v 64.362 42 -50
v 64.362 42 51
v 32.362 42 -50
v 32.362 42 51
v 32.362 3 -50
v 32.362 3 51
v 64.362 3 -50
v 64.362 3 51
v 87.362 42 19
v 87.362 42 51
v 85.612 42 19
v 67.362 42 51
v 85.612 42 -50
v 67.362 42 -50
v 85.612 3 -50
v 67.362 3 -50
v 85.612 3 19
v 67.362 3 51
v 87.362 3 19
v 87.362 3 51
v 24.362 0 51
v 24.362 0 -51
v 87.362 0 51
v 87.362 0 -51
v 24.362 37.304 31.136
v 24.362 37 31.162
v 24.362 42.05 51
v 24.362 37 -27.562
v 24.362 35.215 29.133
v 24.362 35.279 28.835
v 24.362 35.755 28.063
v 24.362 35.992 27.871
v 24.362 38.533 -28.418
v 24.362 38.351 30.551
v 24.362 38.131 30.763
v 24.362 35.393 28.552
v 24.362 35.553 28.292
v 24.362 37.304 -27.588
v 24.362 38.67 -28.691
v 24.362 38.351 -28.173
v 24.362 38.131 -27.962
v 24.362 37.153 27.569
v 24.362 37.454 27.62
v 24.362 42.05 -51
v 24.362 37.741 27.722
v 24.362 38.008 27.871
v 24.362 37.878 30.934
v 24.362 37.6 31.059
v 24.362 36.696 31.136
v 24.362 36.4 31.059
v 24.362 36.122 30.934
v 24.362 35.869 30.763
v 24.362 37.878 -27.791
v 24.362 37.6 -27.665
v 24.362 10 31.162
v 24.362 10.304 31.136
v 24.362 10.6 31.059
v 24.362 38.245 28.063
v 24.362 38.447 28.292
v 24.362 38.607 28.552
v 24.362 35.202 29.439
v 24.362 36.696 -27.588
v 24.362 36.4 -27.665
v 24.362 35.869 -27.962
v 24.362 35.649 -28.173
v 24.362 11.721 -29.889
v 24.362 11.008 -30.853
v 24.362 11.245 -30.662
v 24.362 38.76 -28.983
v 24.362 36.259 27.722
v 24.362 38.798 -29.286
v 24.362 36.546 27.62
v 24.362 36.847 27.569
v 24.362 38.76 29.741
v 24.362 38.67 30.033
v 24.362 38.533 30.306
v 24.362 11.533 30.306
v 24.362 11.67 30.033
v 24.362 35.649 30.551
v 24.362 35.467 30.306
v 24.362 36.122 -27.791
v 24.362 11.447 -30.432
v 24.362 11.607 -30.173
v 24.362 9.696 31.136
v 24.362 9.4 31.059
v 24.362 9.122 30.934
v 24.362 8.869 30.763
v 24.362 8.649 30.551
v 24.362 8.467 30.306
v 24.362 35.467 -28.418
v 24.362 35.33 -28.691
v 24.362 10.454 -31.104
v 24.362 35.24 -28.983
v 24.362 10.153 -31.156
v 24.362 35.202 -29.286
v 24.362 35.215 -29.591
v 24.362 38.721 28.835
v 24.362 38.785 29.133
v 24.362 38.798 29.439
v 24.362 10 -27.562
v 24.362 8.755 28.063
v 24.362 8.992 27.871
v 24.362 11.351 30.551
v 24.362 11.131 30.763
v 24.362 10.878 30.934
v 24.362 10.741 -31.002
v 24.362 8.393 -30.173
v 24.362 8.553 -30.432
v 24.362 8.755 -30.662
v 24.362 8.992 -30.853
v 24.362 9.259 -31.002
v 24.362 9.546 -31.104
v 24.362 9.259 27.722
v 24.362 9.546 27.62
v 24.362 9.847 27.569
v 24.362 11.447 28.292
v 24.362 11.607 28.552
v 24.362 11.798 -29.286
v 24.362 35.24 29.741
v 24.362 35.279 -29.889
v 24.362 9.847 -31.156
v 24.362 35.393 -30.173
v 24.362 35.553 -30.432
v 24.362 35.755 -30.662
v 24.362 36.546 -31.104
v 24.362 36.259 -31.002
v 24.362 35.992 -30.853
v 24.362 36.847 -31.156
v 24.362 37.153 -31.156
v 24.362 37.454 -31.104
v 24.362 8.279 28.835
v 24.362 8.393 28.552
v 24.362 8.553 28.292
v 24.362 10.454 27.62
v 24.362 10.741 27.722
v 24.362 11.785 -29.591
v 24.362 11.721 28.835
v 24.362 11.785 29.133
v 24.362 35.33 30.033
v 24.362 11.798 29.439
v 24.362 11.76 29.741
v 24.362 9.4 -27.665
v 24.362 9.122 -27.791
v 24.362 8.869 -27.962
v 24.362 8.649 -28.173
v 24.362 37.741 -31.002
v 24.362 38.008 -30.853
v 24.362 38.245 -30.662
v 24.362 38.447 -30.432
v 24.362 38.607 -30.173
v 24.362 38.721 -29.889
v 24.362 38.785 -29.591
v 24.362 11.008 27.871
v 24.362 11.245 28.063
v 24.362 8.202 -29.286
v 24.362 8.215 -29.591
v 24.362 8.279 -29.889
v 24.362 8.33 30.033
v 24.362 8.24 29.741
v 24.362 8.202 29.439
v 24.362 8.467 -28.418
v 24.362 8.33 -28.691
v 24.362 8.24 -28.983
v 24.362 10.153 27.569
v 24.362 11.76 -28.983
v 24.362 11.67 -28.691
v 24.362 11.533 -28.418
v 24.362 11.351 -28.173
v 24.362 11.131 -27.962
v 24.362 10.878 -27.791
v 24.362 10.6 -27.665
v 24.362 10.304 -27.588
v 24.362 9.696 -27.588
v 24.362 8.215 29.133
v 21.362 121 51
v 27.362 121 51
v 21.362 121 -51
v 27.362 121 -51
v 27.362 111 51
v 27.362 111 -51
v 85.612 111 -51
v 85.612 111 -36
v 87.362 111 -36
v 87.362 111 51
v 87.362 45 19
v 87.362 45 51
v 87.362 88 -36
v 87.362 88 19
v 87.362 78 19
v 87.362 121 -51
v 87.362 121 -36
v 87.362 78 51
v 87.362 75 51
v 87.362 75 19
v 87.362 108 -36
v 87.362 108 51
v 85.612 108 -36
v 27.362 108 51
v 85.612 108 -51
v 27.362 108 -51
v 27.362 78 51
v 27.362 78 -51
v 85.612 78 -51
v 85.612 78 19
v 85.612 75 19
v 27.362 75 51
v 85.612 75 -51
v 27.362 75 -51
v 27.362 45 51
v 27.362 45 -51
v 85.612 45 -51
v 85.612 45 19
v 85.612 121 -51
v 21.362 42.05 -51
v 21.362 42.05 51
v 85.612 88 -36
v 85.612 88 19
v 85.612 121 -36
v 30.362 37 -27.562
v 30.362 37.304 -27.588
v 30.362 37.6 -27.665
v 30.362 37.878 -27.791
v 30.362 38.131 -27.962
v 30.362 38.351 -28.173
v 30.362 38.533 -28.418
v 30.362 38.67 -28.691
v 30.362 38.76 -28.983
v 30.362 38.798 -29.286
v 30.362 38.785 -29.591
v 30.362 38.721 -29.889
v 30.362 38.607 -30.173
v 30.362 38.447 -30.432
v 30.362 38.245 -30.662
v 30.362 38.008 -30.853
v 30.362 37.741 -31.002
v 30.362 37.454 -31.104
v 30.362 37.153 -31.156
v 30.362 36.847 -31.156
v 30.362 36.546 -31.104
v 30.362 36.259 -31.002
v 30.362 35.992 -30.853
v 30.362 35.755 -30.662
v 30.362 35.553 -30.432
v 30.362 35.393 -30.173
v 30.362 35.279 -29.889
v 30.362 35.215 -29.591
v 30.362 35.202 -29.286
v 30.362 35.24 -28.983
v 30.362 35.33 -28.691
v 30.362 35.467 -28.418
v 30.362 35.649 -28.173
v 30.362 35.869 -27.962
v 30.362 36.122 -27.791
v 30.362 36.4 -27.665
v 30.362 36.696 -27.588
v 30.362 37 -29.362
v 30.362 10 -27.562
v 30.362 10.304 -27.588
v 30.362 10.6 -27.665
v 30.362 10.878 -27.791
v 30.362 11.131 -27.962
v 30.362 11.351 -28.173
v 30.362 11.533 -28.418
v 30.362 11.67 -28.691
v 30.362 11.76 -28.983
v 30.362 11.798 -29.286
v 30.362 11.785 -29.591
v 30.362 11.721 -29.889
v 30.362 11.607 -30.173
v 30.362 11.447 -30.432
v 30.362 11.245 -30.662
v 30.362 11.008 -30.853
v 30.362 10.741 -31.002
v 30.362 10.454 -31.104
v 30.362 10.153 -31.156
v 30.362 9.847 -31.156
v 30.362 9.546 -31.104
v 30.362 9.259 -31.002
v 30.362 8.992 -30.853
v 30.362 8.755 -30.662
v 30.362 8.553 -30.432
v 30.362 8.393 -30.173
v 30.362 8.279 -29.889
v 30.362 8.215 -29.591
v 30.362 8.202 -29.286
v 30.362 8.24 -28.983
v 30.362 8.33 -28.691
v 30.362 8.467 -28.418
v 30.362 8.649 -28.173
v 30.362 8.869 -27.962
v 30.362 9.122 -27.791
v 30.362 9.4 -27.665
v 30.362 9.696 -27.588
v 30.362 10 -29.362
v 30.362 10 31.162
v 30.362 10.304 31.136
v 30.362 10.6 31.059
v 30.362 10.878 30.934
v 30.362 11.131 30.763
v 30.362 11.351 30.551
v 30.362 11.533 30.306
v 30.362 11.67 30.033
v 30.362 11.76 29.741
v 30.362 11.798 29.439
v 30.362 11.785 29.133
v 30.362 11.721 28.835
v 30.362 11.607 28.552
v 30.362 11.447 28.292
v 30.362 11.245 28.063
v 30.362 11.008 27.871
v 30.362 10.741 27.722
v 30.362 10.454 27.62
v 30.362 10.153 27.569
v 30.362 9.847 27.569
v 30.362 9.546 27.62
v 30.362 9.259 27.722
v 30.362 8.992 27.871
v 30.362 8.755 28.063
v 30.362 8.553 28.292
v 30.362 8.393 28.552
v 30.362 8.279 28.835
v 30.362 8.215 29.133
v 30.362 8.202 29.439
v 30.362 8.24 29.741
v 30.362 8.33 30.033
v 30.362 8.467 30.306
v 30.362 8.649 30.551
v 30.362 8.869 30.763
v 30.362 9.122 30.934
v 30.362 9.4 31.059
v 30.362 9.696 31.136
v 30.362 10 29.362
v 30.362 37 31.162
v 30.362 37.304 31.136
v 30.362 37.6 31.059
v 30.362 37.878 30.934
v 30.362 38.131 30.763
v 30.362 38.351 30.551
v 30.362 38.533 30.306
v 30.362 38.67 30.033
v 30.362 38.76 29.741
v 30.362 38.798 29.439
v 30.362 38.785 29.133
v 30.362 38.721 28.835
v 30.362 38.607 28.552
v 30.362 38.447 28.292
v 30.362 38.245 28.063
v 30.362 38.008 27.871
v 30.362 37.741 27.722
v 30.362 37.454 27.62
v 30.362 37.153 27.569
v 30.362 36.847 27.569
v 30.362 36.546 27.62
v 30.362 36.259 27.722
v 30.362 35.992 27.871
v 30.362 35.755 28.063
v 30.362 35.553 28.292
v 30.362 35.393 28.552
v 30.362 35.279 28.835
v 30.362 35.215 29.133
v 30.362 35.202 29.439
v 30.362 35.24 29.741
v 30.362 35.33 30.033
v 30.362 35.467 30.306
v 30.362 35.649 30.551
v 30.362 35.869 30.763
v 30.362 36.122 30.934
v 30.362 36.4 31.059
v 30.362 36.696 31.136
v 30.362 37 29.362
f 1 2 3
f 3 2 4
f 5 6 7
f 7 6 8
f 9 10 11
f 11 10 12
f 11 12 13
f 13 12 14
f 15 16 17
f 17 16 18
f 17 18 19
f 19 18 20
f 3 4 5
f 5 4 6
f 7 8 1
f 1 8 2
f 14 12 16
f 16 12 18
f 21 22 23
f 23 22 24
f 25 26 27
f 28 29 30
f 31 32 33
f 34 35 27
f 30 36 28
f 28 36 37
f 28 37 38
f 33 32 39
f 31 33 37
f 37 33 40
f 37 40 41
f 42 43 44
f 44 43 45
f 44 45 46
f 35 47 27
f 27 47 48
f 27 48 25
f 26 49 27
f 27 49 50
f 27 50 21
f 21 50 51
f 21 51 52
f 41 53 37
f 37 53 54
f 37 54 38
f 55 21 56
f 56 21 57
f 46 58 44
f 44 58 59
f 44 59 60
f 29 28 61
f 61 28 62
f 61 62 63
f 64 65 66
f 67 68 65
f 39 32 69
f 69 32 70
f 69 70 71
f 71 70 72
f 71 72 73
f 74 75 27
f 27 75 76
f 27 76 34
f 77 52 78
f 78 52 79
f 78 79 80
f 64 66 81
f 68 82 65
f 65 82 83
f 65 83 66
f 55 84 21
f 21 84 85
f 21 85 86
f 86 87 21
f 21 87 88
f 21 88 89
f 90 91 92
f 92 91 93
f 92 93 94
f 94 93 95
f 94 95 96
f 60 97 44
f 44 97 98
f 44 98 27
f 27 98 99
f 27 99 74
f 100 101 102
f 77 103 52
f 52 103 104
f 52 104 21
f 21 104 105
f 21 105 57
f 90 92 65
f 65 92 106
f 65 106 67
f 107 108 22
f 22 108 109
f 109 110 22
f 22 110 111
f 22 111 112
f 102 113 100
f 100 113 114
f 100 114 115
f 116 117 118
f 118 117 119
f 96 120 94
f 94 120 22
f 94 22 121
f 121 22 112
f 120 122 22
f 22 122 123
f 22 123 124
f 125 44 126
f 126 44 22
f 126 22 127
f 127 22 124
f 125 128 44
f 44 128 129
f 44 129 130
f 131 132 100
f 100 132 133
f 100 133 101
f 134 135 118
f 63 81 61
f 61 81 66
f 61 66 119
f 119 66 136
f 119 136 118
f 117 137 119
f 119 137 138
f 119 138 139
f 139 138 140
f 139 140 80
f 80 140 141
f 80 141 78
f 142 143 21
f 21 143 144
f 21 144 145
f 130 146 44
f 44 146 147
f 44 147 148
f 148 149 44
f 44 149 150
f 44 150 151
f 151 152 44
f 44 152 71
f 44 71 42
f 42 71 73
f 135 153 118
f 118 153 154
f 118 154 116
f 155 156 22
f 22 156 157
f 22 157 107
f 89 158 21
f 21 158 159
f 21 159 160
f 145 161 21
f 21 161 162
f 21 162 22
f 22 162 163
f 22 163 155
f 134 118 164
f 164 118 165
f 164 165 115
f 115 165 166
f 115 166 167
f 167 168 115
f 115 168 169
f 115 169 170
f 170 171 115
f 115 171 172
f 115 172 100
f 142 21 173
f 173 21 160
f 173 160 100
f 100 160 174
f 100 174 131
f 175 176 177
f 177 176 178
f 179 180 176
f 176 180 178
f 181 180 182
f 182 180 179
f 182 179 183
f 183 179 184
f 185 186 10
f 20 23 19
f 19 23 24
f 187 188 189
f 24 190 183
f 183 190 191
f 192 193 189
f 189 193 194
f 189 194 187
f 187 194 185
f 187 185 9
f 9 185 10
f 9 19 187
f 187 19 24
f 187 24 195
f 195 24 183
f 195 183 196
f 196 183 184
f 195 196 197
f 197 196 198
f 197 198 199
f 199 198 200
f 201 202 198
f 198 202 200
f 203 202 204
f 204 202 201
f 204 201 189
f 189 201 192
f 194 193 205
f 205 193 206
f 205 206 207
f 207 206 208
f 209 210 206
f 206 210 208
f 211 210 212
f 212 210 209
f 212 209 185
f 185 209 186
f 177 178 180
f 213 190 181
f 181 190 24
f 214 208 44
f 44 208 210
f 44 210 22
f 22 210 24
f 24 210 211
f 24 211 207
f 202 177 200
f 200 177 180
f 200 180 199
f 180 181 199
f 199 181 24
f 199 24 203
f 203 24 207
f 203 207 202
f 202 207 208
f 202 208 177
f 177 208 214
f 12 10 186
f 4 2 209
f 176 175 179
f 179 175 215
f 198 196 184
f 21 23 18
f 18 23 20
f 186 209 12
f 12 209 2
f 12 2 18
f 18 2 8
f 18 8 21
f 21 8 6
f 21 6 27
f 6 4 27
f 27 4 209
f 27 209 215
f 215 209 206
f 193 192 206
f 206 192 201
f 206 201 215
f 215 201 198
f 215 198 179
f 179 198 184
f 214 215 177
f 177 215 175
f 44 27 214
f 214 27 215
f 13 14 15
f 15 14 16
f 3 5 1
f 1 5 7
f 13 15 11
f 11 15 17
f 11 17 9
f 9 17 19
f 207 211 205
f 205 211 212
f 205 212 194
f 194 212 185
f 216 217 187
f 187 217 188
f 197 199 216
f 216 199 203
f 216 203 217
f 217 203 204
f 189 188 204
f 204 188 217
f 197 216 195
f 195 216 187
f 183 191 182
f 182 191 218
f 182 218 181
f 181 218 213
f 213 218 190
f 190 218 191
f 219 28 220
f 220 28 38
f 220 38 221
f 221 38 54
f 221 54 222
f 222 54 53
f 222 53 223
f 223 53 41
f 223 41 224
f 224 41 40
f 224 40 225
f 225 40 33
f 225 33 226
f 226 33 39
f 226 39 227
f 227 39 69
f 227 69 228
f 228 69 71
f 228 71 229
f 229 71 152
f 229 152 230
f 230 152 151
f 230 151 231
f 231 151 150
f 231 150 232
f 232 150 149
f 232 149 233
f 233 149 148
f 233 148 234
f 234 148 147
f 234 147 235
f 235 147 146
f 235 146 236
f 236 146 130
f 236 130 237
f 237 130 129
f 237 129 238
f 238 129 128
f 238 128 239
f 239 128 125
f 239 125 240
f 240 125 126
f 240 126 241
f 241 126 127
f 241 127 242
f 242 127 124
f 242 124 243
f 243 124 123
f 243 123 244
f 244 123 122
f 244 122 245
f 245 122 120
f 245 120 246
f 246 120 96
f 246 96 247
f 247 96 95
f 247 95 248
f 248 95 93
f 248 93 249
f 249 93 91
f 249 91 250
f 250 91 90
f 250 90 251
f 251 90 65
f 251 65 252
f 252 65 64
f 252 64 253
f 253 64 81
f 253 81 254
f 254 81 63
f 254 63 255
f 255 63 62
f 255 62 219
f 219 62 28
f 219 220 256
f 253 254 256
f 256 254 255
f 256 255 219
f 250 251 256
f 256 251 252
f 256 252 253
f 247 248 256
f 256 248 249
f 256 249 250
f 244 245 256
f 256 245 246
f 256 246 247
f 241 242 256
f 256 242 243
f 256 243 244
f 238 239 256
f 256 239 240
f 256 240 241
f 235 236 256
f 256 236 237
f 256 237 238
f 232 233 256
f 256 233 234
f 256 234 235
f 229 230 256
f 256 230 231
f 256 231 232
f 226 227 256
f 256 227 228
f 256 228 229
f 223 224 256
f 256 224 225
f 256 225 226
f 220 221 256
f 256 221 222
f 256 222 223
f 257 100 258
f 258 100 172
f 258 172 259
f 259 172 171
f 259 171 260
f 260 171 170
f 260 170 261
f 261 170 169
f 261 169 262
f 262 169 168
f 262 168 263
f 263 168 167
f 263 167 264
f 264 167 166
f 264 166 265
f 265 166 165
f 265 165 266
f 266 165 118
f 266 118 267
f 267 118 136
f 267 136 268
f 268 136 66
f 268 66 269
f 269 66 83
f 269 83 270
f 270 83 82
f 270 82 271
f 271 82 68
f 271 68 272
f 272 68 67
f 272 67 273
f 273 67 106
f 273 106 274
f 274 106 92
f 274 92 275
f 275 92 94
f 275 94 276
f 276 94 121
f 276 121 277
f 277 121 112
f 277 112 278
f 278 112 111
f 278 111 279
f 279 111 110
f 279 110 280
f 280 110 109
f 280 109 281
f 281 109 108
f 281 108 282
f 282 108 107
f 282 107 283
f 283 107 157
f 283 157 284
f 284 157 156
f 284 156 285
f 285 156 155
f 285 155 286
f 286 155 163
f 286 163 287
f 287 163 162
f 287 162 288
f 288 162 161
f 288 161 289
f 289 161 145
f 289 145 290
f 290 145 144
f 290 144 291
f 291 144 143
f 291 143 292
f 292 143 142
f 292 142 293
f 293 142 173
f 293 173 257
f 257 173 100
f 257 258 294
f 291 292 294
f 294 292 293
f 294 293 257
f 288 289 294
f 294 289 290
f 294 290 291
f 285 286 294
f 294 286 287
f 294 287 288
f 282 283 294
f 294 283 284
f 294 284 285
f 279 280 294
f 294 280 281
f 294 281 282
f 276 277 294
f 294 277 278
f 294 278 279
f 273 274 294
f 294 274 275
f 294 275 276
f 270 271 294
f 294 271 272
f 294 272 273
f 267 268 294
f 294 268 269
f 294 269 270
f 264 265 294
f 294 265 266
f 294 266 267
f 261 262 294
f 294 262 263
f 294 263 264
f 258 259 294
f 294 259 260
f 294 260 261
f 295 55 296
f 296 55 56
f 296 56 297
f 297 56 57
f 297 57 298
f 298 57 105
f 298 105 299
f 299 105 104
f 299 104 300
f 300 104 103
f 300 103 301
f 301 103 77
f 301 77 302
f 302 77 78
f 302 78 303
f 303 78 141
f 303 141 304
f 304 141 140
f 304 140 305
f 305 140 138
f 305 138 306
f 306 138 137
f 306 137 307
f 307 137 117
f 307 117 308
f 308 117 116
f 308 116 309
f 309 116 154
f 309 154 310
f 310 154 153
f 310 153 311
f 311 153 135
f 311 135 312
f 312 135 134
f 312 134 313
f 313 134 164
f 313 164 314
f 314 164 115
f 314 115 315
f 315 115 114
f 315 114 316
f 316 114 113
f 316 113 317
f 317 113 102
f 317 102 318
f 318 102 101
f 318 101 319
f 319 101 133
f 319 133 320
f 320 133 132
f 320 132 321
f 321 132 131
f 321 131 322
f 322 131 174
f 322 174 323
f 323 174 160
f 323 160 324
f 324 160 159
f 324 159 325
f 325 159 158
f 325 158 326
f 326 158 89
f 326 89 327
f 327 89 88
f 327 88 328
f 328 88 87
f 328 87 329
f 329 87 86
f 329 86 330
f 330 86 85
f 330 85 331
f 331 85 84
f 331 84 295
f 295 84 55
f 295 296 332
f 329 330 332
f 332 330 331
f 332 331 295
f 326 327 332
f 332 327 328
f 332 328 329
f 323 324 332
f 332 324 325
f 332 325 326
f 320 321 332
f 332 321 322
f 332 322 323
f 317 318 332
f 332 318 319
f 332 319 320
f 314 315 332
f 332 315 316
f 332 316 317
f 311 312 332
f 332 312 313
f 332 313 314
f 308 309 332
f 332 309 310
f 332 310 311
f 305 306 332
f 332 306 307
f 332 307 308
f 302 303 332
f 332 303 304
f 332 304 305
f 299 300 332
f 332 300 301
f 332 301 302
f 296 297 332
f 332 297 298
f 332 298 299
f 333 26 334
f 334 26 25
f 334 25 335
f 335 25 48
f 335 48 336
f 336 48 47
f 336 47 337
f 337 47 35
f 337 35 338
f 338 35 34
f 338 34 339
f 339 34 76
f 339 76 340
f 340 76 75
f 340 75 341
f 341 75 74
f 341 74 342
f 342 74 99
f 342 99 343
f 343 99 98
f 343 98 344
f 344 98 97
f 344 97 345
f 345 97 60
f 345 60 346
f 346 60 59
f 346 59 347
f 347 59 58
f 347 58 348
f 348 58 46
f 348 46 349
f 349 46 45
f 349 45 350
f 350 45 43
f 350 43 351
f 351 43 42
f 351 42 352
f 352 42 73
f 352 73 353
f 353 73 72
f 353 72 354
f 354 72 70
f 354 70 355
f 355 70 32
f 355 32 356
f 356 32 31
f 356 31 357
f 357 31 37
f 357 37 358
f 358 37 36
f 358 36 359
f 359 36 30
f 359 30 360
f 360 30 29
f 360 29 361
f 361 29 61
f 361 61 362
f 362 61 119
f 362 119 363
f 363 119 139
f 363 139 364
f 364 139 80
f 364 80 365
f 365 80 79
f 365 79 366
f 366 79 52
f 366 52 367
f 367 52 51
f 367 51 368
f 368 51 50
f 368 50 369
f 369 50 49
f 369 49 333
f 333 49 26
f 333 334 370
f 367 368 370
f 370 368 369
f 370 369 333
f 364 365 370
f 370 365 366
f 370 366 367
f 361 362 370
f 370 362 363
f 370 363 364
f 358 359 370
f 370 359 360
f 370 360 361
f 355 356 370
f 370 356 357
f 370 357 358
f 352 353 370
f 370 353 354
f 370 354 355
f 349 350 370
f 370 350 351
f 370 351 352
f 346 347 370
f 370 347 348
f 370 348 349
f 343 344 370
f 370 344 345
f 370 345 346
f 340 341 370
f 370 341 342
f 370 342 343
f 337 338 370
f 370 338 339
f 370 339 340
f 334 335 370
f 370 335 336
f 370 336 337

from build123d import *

# Parameters (mm, degrees)
BOSS_EXTRUDE1_DEPTH      = 51
BOSS_EXTRUDE1_DEPTH_BACK = 51
SKETCH2_W                = 3
SKETCH2_H                = 78.95
BOSS_EXTRUDE2_DEPTH      = 102
SKETCH3_W                = 5
SKETCH3_H                = 39
SKETCH3_W_2              = 3
BOSS_EXTRUDE3_DEPTH      = 102
SKETCH4_W                = 55
SKETCH4_H                = 39
BOSS_EXTRUDE4_DEPTH      = 1
BOSS_EXTRUDE5_DEPTH      = 1.75
SKETCH7_R                = 1.8
CUT_EXTRUDE1_DEPTH       = 6


with BuildPart() as part:
    # Sketch1 → Boss-Extrude1 (new, two sides: drawn at the far end of the back side and taken through both)
    with BuildSketch(Plane.XY.offset(-BOSS_EXTRUDE1_DEPTH_BACK)):
        Polygon((24.362132034, 0), (24.362132034, 121), (27.362132034, 121), (27.362132034, 111), (87.362132034, 111), (87.362132034, 108), (27.362132034, 108), (27.362132034, 78), (87.362132034, 78), (87.362132034, 75), (27.362132034, 75), (27.362132034, 45), (87.362132034, 45), (87.362132034, 42), (27.362132034, 42), (27.362132034, 3), (87.362132034, 3), (87.362132034, 0), align=None)
    extrude(amount=BOSS_EXTRUDE1_DEPTH + BOSS_EXTRUDE1_DEPTH_BACK)

    # Sketch2 → Boss-Extrude2 (add)
    with BuildSketch(Plane.XY.offset(51)):
        with Locations((22.862132034, 81.525)):
            Rectangle(SKETCH2_W, SKETCH2_H)
    extrude(amount=-BOSS_EXTRUDE2_DEPTH)

    # Sketch3 → Boss-Extrude3 (add)
    with BuildSketch(Plane.XY.offset(51)):
        with Locations((29.862132034, 22.5)):
            Rectangle(SKETCH3_W, SKETCH3_H)
        with Locations((65.862132034, 22.5)):
            Rectangle(SKETCH3_W_2, SKETCH3_H)
    extrude(amount=-BOSS_EXTRUDE3_DEPTH)

    # Sketch4 → Boss-Extrude4 (add)
    with BuildSketch(Plane(origin=(0, 0, -51), x_dir=(-1, 0, 0), z_dir=(0, 0, -1))):
        with Locations((-59.862132034, 22.5)):
            Rectangle(SKETCH4_W, SKETCH4_H)
    extrude(amount=-BOSS_EXTRUDE4_DEPTH)

    # Sketch5 → Boss-Extrude5 (add)
    with BuildSketch(Plane(origin=(87.362132034, 0, 0), x_dir=(0, 0, -1), z_dir=(1, 0, 0))):
        Polygon((36, 0), (36, 3), (-19, 3), (-19, 42), (-19, 75), (-19, 88), (36, 88), (36, 121), (51, 121), (51, 0), align=None)
    extrude(amount=-BOSS_EXTRUDE5_DEPTH)

    # Sketch7 → Cut-Extrude1 (cut)
    with BuildSketch(Plane.ZY.offset(-24.362132034)):
        with Locations((-29.362132034, 37)):
            Circle(SKETCH7_R)
        with Locations((-29.362132034, 10)):
            Circle(SKETCH7_R)
        with Locations((29.362132034, 10)):
            Circle(SKETCH7_R)
        with Locations((29.362132034, 37)):
            Circle(SKETCH7_R)
    extrude(amount=-CUT_EXTRUDE1_DEPTH, mode=Mode.SUBTRACT)


solid = part.part
